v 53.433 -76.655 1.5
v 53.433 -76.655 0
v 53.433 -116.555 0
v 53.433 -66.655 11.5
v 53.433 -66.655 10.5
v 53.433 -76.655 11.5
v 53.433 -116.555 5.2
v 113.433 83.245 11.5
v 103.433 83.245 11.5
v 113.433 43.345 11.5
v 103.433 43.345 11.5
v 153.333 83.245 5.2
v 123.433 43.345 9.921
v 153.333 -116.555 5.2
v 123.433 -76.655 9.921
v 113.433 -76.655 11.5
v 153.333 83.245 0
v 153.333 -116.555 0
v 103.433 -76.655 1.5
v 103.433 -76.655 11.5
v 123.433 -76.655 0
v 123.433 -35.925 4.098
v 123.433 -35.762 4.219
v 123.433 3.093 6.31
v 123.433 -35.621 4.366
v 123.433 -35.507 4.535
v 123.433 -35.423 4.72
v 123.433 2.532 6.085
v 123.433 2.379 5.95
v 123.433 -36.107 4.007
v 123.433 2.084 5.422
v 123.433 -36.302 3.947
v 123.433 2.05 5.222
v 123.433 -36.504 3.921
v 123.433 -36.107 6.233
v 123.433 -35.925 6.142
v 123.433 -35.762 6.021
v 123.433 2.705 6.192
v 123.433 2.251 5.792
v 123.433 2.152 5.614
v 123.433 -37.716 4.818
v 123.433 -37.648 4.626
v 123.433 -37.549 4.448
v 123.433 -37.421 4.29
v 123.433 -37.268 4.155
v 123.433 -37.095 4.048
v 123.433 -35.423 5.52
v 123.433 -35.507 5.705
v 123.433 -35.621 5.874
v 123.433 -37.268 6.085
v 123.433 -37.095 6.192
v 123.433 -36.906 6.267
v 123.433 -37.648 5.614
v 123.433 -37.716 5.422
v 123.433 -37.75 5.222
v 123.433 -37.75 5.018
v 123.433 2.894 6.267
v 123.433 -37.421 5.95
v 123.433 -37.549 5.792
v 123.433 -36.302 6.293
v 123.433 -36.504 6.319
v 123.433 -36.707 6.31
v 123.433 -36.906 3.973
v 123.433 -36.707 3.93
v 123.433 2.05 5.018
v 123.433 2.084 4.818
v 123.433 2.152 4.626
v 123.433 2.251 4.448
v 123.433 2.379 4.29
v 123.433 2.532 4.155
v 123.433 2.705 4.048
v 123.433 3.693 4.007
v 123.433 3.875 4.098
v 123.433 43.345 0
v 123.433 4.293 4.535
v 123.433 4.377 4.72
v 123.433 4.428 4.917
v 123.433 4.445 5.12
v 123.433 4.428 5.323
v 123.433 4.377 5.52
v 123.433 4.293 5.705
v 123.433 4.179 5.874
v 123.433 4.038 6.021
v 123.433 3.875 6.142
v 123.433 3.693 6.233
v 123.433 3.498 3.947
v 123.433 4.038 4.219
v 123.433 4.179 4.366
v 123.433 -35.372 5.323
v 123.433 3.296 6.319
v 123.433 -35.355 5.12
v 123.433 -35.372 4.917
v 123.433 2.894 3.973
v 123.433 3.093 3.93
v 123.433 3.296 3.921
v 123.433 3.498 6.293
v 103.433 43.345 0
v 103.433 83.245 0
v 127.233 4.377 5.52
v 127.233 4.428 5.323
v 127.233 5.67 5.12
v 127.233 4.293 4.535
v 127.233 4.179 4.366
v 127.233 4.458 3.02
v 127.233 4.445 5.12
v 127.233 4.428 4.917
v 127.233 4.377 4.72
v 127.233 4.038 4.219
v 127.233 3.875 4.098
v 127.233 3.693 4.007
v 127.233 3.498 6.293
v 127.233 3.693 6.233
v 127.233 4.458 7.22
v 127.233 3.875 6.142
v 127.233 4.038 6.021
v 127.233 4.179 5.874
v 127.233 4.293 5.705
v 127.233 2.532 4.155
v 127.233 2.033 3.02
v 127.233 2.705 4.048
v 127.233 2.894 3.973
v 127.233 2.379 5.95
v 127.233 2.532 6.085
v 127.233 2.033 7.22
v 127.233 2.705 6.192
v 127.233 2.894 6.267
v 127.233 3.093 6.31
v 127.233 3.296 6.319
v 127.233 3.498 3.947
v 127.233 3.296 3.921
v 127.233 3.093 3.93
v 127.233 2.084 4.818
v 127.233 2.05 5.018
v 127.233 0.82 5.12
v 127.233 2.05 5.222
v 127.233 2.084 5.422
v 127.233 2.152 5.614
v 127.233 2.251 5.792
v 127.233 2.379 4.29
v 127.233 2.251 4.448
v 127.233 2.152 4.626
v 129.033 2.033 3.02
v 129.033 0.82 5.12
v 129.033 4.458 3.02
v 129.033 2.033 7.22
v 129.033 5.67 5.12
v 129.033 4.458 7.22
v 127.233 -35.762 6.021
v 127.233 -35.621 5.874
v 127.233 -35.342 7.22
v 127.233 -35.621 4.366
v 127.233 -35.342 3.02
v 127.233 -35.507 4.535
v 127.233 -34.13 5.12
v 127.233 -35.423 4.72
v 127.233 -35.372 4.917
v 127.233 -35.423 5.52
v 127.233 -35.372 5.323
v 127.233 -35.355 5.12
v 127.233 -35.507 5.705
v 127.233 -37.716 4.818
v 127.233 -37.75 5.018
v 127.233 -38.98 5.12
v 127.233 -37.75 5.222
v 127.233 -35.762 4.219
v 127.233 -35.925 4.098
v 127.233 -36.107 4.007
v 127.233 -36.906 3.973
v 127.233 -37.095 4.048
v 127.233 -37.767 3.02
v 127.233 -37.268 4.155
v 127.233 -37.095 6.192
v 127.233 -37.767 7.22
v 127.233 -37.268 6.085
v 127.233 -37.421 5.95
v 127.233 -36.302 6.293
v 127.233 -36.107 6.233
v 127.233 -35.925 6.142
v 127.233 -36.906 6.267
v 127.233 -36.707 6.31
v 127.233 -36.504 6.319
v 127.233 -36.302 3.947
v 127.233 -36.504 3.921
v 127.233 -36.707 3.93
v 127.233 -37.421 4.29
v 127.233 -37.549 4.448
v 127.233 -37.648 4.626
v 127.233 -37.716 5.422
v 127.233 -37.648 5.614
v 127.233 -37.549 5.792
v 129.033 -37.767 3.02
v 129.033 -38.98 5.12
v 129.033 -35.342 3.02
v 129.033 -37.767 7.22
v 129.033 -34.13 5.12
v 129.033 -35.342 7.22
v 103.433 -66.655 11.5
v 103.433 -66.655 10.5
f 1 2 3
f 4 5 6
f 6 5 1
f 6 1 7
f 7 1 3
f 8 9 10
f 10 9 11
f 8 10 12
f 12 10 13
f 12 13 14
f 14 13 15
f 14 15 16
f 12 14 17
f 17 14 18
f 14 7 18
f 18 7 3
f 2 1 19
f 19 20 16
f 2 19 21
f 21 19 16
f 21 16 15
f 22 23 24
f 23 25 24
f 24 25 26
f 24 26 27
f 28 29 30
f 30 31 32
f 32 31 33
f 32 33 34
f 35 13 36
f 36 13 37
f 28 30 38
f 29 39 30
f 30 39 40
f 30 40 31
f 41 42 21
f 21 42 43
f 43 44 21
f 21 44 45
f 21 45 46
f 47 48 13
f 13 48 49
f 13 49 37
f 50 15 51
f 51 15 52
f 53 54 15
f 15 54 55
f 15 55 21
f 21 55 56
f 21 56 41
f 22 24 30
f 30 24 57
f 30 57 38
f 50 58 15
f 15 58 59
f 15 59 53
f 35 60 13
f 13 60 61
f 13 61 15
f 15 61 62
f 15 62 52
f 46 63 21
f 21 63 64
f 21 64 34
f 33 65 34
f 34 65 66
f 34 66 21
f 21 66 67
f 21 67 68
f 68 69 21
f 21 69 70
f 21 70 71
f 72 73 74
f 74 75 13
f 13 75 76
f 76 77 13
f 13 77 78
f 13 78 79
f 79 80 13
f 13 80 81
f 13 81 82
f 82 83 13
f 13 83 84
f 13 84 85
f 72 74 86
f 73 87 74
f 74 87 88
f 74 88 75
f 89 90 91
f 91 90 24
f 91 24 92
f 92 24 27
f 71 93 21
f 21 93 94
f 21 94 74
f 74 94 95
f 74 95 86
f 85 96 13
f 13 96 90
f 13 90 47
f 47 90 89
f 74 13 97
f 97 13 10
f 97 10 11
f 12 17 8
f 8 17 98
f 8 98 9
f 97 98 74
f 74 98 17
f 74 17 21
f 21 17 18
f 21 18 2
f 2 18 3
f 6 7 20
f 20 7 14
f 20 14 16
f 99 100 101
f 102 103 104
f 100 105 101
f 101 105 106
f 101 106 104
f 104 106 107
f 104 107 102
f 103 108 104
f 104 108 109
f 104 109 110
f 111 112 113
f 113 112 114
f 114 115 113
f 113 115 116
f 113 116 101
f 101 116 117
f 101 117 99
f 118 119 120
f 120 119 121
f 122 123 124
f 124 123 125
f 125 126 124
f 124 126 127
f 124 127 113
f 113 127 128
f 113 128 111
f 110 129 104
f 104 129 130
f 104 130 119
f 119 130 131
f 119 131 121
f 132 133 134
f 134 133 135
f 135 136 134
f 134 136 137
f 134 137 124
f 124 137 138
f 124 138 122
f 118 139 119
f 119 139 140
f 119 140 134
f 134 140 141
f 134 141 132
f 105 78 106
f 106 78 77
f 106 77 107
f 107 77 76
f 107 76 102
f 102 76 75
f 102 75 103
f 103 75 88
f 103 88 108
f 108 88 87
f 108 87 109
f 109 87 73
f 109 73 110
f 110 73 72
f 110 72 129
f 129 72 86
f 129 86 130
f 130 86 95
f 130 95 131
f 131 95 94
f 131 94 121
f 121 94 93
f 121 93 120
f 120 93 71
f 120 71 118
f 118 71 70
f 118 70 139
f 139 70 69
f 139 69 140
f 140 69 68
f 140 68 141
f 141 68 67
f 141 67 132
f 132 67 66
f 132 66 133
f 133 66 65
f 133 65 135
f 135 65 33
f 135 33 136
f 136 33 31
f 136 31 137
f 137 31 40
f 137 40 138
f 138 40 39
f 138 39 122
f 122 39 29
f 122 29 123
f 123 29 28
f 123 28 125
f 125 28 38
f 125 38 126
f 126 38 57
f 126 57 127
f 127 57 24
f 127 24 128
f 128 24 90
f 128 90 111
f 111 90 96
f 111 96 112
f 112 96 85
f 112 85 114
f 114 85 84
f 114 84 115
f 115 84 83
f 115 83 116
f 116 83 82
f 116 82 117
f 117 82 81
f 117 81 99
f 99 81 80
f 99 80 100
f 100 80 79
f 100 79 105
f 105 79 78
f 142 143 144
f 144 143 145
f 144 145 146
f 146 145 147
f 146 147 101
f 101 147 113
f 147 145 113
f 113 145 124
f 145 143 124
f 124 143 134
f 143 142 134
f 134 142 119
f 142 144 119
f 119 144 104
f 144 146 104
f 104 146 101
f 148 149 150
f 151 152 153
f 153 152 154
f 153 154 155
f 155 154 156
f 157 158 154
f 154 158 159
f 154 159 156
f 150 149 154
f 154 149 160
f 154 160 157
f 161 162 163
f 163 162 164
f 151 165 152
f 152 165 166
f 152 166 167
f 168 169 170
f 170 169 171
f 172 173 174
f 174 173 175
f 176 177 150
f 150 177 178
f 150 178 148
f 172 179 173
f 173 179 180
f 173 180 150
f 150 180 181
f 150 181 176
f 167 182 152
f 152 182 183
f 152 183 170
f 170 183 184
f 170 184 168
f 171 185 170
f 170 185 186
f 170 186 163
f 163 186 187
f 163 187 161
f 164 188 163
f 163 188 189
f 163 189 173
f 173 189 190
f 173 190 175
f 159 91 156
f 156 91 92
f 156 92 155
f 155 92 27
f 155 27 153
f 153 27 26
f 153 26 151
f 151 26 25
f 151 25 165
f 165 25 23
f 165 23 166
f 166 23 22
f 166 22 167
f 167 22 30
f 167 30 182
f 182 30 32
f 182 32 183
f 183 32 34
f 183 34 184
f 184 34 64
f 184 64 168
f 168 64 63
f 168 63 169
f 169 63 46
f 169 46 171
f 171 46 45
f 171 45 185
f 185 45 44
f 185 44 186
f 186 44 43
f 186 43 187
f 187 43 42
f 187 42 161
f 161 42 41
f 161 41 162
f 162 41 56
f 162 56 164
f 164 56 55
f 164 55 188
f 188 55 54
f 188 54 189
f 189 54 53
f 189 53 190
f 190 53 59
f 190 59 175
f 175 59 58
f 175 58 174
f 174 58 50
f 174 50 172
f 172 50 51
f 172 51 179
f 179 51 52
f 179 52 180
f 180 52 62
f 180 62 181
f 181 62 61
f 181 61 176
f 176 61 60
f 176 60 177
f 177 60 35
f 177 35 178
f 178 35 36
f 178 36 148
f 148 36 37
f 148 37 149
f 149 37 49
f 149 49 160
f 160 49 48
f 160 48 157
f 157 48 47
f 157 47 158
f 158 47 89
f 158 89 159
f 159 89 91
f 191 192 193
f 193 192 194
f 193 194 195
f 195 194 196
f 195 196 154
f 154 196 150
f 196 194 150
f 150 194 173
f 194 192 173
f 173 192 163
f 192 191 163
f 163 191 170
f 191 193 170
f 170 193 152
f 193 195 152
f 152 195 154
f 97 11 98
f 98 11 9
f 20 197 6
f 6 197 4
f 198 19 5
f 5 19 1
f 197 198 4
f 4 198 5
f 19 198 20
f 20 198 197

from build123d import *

# Parameters (mm, degrees)
DODANIE_WYCI_GNI_CIE1_DEPTH = 5.2
SZKIC3_W                    = 60
SZKIC3_H                    = 159.9
SZKIC5_W                    = 99.9
SZKIC5_H                    = 199.8
SZKIC6_W                    = 49.271239353
SZKIC6_H                    = 120
WYTNIJ_WYCI_GNI_CIE1_DEPTH  = 78
WYTNIJ_WYCI_GNI_CIE2_DEPTH  = 5.6
SZKIC9_R                    = 2.424871131
SZKIC9_R_2                  = 1.2
DODANIE_WYCI_GNI_CIE3_DEPTH = 3.8
SZKIC10_W                   = 50
SZKIC10_H                   = 39.9
WYTNIJ_WYCI_GNI_CIE4_DEPTH  = 24
DODANIE_WYCI_GNI_CIE4_DEPTH = 50


with BuildPart() as part:
    # Szkic2 → Dodanie-wyciągnięcie1 (new body)
    with BuildSketch(Plane.XY):
        Polygon((18.542832418, 83.245366469), (18.542832418, 43.345366469), (-51.457167582, 43.345366469), (-51.457167582, -76.654633531), (18.542832418, -76.654633531), (18.542832418, -116.554633531), (-81.357167582, -116.554633531), (-81.357167582, 83.245366469), align=None)
    extrude(amount=DODANIE_WYCI_GNI_CIE1_DEPTH)

    # Szkic3 → Wyciągnięcie po profilach3 section 0
    with BuildSketch(Plane.XY.offset(11.5)):
        with Locations((-11.457167582, 3.295366469)):
            Rectangle(SZKIC3_W, SZKIC3_H)
    # Szkic5 → Wyciągnięcie po profilach3 section 1
    with BuildSketch(Plane.XY.offset(5.2)):
        with Locations((-31.407167582, -16.654633531)):
            Rectangle(SZKIC5_W, SZKIC5_H)
    loft()

    # Szkic6 → Wytnij-wyciągnięcie1 (cut)
    with BuildSketch(Plane(origin=(-51.457167582, 0, 0), x_dir=(0, 0, -1), z_dir=(1, 0, 0))):
        with Locations((-24.635619677, -16.654633531)):
            Rectangle(SZKIC6_W, SZKIC6_H)
    extrude(amount=WYTNIJ_WYCI_GNI_CIE1_DEPTH, mode=Mode.SUBTRACT)

    # Szkic7 → Wytnij-wyciągnięcie2 (cut)
    with BuildSketch(Plane(origin=(-51.457167582, 0, 0), x_dir=(0, 0, -1), z_dir=(1, 0, 0))):
        Polygon((-5.12, -34.1297624), (-7.22, -35.342197966), (-7.22, -37.767069096), (-5.12, -38.979504662), (-3.02, -37.767069096), (-3.02, -35.342197966), align=None)
        Polygon((-5.12, 5.6702376), (-7.22, 4.457802034), (-7.22, 2.032930904), (-5.12, 0.820495338), (-3.02, 2.032930904), (-3.02, 4.457802034), align=None)
    extrude(amount=-WYTNIJ_WYCI_GNI_CIE2_DEPTH, mode=Mode.SUBTRACT)

    # Szkic9 → Dodanie-wyciągnięcie3 (add)
    with BuildSketch(Plane(origin=(-51.457167582, 0, 0), x_dir=(0, 0, -1), z_dir=(1, 0, 0))):
        with Locations((-5.12, 3.245366469)):
            Circle(SZKIC9_R)
        with Locations((-5.12, 3.245366469)):
            Circle(SZKIC9_R_2, mode=Mode.SUBTRACT)
        with Locations((-5.12, -36.554633531)):
            Circle(SZKIC9_R)
        with Locations((-5.12, -36.554633531)):
            Circle(SZKIC9_R_2, mode=Mode.SUBTRACT)
    extrude(amount=-DODANIE_WYCI_GNI_CIE3_DEPTH)

    # Szkic10 → Wytnij-wyciągnięcie4 (cut)
    with BuildSketch(Plane.XY.offset(11.5)):
        with Locations((-6.457167582, 63.295366469)):
            Rectangle(SZKIC10_W, SZKIC10_H)
    extrude(amount=-WYTNIJ_WYCI_GNI_CIE4_DEPTH, mode=Mode.SUBTRACT)


with BuildPart() as body_2:
    # Lustro1: mirrored copy
    add(part.part.mirror(Plane(origin=(18.542832418, 83.245366469, 5.2), x_dir=(0, 0, 1), z_dir=(-1, 0, 0))))


with BuildPart() as body_2_1:
    # Obiekt-Przenieś/Kopiuj1: moved
    add(body_2.part.moved(Location((34.890139481, 0, 0))))

    # Szkic11 → Dodanie-wyciągnięcie4 (add)
    with BuildSketch(Plane.ZY.offset(-53.432971899)):
        Polygon((11.5, -76.654633531), (1.5, -76.654633531), (10.5, -66.654633531), (11.5, -66.654633531), align=None)
    extrude(amount=-DODANIE_WYCI_GNI_CIE4_DEPTH)


solid = body_2_1.part
